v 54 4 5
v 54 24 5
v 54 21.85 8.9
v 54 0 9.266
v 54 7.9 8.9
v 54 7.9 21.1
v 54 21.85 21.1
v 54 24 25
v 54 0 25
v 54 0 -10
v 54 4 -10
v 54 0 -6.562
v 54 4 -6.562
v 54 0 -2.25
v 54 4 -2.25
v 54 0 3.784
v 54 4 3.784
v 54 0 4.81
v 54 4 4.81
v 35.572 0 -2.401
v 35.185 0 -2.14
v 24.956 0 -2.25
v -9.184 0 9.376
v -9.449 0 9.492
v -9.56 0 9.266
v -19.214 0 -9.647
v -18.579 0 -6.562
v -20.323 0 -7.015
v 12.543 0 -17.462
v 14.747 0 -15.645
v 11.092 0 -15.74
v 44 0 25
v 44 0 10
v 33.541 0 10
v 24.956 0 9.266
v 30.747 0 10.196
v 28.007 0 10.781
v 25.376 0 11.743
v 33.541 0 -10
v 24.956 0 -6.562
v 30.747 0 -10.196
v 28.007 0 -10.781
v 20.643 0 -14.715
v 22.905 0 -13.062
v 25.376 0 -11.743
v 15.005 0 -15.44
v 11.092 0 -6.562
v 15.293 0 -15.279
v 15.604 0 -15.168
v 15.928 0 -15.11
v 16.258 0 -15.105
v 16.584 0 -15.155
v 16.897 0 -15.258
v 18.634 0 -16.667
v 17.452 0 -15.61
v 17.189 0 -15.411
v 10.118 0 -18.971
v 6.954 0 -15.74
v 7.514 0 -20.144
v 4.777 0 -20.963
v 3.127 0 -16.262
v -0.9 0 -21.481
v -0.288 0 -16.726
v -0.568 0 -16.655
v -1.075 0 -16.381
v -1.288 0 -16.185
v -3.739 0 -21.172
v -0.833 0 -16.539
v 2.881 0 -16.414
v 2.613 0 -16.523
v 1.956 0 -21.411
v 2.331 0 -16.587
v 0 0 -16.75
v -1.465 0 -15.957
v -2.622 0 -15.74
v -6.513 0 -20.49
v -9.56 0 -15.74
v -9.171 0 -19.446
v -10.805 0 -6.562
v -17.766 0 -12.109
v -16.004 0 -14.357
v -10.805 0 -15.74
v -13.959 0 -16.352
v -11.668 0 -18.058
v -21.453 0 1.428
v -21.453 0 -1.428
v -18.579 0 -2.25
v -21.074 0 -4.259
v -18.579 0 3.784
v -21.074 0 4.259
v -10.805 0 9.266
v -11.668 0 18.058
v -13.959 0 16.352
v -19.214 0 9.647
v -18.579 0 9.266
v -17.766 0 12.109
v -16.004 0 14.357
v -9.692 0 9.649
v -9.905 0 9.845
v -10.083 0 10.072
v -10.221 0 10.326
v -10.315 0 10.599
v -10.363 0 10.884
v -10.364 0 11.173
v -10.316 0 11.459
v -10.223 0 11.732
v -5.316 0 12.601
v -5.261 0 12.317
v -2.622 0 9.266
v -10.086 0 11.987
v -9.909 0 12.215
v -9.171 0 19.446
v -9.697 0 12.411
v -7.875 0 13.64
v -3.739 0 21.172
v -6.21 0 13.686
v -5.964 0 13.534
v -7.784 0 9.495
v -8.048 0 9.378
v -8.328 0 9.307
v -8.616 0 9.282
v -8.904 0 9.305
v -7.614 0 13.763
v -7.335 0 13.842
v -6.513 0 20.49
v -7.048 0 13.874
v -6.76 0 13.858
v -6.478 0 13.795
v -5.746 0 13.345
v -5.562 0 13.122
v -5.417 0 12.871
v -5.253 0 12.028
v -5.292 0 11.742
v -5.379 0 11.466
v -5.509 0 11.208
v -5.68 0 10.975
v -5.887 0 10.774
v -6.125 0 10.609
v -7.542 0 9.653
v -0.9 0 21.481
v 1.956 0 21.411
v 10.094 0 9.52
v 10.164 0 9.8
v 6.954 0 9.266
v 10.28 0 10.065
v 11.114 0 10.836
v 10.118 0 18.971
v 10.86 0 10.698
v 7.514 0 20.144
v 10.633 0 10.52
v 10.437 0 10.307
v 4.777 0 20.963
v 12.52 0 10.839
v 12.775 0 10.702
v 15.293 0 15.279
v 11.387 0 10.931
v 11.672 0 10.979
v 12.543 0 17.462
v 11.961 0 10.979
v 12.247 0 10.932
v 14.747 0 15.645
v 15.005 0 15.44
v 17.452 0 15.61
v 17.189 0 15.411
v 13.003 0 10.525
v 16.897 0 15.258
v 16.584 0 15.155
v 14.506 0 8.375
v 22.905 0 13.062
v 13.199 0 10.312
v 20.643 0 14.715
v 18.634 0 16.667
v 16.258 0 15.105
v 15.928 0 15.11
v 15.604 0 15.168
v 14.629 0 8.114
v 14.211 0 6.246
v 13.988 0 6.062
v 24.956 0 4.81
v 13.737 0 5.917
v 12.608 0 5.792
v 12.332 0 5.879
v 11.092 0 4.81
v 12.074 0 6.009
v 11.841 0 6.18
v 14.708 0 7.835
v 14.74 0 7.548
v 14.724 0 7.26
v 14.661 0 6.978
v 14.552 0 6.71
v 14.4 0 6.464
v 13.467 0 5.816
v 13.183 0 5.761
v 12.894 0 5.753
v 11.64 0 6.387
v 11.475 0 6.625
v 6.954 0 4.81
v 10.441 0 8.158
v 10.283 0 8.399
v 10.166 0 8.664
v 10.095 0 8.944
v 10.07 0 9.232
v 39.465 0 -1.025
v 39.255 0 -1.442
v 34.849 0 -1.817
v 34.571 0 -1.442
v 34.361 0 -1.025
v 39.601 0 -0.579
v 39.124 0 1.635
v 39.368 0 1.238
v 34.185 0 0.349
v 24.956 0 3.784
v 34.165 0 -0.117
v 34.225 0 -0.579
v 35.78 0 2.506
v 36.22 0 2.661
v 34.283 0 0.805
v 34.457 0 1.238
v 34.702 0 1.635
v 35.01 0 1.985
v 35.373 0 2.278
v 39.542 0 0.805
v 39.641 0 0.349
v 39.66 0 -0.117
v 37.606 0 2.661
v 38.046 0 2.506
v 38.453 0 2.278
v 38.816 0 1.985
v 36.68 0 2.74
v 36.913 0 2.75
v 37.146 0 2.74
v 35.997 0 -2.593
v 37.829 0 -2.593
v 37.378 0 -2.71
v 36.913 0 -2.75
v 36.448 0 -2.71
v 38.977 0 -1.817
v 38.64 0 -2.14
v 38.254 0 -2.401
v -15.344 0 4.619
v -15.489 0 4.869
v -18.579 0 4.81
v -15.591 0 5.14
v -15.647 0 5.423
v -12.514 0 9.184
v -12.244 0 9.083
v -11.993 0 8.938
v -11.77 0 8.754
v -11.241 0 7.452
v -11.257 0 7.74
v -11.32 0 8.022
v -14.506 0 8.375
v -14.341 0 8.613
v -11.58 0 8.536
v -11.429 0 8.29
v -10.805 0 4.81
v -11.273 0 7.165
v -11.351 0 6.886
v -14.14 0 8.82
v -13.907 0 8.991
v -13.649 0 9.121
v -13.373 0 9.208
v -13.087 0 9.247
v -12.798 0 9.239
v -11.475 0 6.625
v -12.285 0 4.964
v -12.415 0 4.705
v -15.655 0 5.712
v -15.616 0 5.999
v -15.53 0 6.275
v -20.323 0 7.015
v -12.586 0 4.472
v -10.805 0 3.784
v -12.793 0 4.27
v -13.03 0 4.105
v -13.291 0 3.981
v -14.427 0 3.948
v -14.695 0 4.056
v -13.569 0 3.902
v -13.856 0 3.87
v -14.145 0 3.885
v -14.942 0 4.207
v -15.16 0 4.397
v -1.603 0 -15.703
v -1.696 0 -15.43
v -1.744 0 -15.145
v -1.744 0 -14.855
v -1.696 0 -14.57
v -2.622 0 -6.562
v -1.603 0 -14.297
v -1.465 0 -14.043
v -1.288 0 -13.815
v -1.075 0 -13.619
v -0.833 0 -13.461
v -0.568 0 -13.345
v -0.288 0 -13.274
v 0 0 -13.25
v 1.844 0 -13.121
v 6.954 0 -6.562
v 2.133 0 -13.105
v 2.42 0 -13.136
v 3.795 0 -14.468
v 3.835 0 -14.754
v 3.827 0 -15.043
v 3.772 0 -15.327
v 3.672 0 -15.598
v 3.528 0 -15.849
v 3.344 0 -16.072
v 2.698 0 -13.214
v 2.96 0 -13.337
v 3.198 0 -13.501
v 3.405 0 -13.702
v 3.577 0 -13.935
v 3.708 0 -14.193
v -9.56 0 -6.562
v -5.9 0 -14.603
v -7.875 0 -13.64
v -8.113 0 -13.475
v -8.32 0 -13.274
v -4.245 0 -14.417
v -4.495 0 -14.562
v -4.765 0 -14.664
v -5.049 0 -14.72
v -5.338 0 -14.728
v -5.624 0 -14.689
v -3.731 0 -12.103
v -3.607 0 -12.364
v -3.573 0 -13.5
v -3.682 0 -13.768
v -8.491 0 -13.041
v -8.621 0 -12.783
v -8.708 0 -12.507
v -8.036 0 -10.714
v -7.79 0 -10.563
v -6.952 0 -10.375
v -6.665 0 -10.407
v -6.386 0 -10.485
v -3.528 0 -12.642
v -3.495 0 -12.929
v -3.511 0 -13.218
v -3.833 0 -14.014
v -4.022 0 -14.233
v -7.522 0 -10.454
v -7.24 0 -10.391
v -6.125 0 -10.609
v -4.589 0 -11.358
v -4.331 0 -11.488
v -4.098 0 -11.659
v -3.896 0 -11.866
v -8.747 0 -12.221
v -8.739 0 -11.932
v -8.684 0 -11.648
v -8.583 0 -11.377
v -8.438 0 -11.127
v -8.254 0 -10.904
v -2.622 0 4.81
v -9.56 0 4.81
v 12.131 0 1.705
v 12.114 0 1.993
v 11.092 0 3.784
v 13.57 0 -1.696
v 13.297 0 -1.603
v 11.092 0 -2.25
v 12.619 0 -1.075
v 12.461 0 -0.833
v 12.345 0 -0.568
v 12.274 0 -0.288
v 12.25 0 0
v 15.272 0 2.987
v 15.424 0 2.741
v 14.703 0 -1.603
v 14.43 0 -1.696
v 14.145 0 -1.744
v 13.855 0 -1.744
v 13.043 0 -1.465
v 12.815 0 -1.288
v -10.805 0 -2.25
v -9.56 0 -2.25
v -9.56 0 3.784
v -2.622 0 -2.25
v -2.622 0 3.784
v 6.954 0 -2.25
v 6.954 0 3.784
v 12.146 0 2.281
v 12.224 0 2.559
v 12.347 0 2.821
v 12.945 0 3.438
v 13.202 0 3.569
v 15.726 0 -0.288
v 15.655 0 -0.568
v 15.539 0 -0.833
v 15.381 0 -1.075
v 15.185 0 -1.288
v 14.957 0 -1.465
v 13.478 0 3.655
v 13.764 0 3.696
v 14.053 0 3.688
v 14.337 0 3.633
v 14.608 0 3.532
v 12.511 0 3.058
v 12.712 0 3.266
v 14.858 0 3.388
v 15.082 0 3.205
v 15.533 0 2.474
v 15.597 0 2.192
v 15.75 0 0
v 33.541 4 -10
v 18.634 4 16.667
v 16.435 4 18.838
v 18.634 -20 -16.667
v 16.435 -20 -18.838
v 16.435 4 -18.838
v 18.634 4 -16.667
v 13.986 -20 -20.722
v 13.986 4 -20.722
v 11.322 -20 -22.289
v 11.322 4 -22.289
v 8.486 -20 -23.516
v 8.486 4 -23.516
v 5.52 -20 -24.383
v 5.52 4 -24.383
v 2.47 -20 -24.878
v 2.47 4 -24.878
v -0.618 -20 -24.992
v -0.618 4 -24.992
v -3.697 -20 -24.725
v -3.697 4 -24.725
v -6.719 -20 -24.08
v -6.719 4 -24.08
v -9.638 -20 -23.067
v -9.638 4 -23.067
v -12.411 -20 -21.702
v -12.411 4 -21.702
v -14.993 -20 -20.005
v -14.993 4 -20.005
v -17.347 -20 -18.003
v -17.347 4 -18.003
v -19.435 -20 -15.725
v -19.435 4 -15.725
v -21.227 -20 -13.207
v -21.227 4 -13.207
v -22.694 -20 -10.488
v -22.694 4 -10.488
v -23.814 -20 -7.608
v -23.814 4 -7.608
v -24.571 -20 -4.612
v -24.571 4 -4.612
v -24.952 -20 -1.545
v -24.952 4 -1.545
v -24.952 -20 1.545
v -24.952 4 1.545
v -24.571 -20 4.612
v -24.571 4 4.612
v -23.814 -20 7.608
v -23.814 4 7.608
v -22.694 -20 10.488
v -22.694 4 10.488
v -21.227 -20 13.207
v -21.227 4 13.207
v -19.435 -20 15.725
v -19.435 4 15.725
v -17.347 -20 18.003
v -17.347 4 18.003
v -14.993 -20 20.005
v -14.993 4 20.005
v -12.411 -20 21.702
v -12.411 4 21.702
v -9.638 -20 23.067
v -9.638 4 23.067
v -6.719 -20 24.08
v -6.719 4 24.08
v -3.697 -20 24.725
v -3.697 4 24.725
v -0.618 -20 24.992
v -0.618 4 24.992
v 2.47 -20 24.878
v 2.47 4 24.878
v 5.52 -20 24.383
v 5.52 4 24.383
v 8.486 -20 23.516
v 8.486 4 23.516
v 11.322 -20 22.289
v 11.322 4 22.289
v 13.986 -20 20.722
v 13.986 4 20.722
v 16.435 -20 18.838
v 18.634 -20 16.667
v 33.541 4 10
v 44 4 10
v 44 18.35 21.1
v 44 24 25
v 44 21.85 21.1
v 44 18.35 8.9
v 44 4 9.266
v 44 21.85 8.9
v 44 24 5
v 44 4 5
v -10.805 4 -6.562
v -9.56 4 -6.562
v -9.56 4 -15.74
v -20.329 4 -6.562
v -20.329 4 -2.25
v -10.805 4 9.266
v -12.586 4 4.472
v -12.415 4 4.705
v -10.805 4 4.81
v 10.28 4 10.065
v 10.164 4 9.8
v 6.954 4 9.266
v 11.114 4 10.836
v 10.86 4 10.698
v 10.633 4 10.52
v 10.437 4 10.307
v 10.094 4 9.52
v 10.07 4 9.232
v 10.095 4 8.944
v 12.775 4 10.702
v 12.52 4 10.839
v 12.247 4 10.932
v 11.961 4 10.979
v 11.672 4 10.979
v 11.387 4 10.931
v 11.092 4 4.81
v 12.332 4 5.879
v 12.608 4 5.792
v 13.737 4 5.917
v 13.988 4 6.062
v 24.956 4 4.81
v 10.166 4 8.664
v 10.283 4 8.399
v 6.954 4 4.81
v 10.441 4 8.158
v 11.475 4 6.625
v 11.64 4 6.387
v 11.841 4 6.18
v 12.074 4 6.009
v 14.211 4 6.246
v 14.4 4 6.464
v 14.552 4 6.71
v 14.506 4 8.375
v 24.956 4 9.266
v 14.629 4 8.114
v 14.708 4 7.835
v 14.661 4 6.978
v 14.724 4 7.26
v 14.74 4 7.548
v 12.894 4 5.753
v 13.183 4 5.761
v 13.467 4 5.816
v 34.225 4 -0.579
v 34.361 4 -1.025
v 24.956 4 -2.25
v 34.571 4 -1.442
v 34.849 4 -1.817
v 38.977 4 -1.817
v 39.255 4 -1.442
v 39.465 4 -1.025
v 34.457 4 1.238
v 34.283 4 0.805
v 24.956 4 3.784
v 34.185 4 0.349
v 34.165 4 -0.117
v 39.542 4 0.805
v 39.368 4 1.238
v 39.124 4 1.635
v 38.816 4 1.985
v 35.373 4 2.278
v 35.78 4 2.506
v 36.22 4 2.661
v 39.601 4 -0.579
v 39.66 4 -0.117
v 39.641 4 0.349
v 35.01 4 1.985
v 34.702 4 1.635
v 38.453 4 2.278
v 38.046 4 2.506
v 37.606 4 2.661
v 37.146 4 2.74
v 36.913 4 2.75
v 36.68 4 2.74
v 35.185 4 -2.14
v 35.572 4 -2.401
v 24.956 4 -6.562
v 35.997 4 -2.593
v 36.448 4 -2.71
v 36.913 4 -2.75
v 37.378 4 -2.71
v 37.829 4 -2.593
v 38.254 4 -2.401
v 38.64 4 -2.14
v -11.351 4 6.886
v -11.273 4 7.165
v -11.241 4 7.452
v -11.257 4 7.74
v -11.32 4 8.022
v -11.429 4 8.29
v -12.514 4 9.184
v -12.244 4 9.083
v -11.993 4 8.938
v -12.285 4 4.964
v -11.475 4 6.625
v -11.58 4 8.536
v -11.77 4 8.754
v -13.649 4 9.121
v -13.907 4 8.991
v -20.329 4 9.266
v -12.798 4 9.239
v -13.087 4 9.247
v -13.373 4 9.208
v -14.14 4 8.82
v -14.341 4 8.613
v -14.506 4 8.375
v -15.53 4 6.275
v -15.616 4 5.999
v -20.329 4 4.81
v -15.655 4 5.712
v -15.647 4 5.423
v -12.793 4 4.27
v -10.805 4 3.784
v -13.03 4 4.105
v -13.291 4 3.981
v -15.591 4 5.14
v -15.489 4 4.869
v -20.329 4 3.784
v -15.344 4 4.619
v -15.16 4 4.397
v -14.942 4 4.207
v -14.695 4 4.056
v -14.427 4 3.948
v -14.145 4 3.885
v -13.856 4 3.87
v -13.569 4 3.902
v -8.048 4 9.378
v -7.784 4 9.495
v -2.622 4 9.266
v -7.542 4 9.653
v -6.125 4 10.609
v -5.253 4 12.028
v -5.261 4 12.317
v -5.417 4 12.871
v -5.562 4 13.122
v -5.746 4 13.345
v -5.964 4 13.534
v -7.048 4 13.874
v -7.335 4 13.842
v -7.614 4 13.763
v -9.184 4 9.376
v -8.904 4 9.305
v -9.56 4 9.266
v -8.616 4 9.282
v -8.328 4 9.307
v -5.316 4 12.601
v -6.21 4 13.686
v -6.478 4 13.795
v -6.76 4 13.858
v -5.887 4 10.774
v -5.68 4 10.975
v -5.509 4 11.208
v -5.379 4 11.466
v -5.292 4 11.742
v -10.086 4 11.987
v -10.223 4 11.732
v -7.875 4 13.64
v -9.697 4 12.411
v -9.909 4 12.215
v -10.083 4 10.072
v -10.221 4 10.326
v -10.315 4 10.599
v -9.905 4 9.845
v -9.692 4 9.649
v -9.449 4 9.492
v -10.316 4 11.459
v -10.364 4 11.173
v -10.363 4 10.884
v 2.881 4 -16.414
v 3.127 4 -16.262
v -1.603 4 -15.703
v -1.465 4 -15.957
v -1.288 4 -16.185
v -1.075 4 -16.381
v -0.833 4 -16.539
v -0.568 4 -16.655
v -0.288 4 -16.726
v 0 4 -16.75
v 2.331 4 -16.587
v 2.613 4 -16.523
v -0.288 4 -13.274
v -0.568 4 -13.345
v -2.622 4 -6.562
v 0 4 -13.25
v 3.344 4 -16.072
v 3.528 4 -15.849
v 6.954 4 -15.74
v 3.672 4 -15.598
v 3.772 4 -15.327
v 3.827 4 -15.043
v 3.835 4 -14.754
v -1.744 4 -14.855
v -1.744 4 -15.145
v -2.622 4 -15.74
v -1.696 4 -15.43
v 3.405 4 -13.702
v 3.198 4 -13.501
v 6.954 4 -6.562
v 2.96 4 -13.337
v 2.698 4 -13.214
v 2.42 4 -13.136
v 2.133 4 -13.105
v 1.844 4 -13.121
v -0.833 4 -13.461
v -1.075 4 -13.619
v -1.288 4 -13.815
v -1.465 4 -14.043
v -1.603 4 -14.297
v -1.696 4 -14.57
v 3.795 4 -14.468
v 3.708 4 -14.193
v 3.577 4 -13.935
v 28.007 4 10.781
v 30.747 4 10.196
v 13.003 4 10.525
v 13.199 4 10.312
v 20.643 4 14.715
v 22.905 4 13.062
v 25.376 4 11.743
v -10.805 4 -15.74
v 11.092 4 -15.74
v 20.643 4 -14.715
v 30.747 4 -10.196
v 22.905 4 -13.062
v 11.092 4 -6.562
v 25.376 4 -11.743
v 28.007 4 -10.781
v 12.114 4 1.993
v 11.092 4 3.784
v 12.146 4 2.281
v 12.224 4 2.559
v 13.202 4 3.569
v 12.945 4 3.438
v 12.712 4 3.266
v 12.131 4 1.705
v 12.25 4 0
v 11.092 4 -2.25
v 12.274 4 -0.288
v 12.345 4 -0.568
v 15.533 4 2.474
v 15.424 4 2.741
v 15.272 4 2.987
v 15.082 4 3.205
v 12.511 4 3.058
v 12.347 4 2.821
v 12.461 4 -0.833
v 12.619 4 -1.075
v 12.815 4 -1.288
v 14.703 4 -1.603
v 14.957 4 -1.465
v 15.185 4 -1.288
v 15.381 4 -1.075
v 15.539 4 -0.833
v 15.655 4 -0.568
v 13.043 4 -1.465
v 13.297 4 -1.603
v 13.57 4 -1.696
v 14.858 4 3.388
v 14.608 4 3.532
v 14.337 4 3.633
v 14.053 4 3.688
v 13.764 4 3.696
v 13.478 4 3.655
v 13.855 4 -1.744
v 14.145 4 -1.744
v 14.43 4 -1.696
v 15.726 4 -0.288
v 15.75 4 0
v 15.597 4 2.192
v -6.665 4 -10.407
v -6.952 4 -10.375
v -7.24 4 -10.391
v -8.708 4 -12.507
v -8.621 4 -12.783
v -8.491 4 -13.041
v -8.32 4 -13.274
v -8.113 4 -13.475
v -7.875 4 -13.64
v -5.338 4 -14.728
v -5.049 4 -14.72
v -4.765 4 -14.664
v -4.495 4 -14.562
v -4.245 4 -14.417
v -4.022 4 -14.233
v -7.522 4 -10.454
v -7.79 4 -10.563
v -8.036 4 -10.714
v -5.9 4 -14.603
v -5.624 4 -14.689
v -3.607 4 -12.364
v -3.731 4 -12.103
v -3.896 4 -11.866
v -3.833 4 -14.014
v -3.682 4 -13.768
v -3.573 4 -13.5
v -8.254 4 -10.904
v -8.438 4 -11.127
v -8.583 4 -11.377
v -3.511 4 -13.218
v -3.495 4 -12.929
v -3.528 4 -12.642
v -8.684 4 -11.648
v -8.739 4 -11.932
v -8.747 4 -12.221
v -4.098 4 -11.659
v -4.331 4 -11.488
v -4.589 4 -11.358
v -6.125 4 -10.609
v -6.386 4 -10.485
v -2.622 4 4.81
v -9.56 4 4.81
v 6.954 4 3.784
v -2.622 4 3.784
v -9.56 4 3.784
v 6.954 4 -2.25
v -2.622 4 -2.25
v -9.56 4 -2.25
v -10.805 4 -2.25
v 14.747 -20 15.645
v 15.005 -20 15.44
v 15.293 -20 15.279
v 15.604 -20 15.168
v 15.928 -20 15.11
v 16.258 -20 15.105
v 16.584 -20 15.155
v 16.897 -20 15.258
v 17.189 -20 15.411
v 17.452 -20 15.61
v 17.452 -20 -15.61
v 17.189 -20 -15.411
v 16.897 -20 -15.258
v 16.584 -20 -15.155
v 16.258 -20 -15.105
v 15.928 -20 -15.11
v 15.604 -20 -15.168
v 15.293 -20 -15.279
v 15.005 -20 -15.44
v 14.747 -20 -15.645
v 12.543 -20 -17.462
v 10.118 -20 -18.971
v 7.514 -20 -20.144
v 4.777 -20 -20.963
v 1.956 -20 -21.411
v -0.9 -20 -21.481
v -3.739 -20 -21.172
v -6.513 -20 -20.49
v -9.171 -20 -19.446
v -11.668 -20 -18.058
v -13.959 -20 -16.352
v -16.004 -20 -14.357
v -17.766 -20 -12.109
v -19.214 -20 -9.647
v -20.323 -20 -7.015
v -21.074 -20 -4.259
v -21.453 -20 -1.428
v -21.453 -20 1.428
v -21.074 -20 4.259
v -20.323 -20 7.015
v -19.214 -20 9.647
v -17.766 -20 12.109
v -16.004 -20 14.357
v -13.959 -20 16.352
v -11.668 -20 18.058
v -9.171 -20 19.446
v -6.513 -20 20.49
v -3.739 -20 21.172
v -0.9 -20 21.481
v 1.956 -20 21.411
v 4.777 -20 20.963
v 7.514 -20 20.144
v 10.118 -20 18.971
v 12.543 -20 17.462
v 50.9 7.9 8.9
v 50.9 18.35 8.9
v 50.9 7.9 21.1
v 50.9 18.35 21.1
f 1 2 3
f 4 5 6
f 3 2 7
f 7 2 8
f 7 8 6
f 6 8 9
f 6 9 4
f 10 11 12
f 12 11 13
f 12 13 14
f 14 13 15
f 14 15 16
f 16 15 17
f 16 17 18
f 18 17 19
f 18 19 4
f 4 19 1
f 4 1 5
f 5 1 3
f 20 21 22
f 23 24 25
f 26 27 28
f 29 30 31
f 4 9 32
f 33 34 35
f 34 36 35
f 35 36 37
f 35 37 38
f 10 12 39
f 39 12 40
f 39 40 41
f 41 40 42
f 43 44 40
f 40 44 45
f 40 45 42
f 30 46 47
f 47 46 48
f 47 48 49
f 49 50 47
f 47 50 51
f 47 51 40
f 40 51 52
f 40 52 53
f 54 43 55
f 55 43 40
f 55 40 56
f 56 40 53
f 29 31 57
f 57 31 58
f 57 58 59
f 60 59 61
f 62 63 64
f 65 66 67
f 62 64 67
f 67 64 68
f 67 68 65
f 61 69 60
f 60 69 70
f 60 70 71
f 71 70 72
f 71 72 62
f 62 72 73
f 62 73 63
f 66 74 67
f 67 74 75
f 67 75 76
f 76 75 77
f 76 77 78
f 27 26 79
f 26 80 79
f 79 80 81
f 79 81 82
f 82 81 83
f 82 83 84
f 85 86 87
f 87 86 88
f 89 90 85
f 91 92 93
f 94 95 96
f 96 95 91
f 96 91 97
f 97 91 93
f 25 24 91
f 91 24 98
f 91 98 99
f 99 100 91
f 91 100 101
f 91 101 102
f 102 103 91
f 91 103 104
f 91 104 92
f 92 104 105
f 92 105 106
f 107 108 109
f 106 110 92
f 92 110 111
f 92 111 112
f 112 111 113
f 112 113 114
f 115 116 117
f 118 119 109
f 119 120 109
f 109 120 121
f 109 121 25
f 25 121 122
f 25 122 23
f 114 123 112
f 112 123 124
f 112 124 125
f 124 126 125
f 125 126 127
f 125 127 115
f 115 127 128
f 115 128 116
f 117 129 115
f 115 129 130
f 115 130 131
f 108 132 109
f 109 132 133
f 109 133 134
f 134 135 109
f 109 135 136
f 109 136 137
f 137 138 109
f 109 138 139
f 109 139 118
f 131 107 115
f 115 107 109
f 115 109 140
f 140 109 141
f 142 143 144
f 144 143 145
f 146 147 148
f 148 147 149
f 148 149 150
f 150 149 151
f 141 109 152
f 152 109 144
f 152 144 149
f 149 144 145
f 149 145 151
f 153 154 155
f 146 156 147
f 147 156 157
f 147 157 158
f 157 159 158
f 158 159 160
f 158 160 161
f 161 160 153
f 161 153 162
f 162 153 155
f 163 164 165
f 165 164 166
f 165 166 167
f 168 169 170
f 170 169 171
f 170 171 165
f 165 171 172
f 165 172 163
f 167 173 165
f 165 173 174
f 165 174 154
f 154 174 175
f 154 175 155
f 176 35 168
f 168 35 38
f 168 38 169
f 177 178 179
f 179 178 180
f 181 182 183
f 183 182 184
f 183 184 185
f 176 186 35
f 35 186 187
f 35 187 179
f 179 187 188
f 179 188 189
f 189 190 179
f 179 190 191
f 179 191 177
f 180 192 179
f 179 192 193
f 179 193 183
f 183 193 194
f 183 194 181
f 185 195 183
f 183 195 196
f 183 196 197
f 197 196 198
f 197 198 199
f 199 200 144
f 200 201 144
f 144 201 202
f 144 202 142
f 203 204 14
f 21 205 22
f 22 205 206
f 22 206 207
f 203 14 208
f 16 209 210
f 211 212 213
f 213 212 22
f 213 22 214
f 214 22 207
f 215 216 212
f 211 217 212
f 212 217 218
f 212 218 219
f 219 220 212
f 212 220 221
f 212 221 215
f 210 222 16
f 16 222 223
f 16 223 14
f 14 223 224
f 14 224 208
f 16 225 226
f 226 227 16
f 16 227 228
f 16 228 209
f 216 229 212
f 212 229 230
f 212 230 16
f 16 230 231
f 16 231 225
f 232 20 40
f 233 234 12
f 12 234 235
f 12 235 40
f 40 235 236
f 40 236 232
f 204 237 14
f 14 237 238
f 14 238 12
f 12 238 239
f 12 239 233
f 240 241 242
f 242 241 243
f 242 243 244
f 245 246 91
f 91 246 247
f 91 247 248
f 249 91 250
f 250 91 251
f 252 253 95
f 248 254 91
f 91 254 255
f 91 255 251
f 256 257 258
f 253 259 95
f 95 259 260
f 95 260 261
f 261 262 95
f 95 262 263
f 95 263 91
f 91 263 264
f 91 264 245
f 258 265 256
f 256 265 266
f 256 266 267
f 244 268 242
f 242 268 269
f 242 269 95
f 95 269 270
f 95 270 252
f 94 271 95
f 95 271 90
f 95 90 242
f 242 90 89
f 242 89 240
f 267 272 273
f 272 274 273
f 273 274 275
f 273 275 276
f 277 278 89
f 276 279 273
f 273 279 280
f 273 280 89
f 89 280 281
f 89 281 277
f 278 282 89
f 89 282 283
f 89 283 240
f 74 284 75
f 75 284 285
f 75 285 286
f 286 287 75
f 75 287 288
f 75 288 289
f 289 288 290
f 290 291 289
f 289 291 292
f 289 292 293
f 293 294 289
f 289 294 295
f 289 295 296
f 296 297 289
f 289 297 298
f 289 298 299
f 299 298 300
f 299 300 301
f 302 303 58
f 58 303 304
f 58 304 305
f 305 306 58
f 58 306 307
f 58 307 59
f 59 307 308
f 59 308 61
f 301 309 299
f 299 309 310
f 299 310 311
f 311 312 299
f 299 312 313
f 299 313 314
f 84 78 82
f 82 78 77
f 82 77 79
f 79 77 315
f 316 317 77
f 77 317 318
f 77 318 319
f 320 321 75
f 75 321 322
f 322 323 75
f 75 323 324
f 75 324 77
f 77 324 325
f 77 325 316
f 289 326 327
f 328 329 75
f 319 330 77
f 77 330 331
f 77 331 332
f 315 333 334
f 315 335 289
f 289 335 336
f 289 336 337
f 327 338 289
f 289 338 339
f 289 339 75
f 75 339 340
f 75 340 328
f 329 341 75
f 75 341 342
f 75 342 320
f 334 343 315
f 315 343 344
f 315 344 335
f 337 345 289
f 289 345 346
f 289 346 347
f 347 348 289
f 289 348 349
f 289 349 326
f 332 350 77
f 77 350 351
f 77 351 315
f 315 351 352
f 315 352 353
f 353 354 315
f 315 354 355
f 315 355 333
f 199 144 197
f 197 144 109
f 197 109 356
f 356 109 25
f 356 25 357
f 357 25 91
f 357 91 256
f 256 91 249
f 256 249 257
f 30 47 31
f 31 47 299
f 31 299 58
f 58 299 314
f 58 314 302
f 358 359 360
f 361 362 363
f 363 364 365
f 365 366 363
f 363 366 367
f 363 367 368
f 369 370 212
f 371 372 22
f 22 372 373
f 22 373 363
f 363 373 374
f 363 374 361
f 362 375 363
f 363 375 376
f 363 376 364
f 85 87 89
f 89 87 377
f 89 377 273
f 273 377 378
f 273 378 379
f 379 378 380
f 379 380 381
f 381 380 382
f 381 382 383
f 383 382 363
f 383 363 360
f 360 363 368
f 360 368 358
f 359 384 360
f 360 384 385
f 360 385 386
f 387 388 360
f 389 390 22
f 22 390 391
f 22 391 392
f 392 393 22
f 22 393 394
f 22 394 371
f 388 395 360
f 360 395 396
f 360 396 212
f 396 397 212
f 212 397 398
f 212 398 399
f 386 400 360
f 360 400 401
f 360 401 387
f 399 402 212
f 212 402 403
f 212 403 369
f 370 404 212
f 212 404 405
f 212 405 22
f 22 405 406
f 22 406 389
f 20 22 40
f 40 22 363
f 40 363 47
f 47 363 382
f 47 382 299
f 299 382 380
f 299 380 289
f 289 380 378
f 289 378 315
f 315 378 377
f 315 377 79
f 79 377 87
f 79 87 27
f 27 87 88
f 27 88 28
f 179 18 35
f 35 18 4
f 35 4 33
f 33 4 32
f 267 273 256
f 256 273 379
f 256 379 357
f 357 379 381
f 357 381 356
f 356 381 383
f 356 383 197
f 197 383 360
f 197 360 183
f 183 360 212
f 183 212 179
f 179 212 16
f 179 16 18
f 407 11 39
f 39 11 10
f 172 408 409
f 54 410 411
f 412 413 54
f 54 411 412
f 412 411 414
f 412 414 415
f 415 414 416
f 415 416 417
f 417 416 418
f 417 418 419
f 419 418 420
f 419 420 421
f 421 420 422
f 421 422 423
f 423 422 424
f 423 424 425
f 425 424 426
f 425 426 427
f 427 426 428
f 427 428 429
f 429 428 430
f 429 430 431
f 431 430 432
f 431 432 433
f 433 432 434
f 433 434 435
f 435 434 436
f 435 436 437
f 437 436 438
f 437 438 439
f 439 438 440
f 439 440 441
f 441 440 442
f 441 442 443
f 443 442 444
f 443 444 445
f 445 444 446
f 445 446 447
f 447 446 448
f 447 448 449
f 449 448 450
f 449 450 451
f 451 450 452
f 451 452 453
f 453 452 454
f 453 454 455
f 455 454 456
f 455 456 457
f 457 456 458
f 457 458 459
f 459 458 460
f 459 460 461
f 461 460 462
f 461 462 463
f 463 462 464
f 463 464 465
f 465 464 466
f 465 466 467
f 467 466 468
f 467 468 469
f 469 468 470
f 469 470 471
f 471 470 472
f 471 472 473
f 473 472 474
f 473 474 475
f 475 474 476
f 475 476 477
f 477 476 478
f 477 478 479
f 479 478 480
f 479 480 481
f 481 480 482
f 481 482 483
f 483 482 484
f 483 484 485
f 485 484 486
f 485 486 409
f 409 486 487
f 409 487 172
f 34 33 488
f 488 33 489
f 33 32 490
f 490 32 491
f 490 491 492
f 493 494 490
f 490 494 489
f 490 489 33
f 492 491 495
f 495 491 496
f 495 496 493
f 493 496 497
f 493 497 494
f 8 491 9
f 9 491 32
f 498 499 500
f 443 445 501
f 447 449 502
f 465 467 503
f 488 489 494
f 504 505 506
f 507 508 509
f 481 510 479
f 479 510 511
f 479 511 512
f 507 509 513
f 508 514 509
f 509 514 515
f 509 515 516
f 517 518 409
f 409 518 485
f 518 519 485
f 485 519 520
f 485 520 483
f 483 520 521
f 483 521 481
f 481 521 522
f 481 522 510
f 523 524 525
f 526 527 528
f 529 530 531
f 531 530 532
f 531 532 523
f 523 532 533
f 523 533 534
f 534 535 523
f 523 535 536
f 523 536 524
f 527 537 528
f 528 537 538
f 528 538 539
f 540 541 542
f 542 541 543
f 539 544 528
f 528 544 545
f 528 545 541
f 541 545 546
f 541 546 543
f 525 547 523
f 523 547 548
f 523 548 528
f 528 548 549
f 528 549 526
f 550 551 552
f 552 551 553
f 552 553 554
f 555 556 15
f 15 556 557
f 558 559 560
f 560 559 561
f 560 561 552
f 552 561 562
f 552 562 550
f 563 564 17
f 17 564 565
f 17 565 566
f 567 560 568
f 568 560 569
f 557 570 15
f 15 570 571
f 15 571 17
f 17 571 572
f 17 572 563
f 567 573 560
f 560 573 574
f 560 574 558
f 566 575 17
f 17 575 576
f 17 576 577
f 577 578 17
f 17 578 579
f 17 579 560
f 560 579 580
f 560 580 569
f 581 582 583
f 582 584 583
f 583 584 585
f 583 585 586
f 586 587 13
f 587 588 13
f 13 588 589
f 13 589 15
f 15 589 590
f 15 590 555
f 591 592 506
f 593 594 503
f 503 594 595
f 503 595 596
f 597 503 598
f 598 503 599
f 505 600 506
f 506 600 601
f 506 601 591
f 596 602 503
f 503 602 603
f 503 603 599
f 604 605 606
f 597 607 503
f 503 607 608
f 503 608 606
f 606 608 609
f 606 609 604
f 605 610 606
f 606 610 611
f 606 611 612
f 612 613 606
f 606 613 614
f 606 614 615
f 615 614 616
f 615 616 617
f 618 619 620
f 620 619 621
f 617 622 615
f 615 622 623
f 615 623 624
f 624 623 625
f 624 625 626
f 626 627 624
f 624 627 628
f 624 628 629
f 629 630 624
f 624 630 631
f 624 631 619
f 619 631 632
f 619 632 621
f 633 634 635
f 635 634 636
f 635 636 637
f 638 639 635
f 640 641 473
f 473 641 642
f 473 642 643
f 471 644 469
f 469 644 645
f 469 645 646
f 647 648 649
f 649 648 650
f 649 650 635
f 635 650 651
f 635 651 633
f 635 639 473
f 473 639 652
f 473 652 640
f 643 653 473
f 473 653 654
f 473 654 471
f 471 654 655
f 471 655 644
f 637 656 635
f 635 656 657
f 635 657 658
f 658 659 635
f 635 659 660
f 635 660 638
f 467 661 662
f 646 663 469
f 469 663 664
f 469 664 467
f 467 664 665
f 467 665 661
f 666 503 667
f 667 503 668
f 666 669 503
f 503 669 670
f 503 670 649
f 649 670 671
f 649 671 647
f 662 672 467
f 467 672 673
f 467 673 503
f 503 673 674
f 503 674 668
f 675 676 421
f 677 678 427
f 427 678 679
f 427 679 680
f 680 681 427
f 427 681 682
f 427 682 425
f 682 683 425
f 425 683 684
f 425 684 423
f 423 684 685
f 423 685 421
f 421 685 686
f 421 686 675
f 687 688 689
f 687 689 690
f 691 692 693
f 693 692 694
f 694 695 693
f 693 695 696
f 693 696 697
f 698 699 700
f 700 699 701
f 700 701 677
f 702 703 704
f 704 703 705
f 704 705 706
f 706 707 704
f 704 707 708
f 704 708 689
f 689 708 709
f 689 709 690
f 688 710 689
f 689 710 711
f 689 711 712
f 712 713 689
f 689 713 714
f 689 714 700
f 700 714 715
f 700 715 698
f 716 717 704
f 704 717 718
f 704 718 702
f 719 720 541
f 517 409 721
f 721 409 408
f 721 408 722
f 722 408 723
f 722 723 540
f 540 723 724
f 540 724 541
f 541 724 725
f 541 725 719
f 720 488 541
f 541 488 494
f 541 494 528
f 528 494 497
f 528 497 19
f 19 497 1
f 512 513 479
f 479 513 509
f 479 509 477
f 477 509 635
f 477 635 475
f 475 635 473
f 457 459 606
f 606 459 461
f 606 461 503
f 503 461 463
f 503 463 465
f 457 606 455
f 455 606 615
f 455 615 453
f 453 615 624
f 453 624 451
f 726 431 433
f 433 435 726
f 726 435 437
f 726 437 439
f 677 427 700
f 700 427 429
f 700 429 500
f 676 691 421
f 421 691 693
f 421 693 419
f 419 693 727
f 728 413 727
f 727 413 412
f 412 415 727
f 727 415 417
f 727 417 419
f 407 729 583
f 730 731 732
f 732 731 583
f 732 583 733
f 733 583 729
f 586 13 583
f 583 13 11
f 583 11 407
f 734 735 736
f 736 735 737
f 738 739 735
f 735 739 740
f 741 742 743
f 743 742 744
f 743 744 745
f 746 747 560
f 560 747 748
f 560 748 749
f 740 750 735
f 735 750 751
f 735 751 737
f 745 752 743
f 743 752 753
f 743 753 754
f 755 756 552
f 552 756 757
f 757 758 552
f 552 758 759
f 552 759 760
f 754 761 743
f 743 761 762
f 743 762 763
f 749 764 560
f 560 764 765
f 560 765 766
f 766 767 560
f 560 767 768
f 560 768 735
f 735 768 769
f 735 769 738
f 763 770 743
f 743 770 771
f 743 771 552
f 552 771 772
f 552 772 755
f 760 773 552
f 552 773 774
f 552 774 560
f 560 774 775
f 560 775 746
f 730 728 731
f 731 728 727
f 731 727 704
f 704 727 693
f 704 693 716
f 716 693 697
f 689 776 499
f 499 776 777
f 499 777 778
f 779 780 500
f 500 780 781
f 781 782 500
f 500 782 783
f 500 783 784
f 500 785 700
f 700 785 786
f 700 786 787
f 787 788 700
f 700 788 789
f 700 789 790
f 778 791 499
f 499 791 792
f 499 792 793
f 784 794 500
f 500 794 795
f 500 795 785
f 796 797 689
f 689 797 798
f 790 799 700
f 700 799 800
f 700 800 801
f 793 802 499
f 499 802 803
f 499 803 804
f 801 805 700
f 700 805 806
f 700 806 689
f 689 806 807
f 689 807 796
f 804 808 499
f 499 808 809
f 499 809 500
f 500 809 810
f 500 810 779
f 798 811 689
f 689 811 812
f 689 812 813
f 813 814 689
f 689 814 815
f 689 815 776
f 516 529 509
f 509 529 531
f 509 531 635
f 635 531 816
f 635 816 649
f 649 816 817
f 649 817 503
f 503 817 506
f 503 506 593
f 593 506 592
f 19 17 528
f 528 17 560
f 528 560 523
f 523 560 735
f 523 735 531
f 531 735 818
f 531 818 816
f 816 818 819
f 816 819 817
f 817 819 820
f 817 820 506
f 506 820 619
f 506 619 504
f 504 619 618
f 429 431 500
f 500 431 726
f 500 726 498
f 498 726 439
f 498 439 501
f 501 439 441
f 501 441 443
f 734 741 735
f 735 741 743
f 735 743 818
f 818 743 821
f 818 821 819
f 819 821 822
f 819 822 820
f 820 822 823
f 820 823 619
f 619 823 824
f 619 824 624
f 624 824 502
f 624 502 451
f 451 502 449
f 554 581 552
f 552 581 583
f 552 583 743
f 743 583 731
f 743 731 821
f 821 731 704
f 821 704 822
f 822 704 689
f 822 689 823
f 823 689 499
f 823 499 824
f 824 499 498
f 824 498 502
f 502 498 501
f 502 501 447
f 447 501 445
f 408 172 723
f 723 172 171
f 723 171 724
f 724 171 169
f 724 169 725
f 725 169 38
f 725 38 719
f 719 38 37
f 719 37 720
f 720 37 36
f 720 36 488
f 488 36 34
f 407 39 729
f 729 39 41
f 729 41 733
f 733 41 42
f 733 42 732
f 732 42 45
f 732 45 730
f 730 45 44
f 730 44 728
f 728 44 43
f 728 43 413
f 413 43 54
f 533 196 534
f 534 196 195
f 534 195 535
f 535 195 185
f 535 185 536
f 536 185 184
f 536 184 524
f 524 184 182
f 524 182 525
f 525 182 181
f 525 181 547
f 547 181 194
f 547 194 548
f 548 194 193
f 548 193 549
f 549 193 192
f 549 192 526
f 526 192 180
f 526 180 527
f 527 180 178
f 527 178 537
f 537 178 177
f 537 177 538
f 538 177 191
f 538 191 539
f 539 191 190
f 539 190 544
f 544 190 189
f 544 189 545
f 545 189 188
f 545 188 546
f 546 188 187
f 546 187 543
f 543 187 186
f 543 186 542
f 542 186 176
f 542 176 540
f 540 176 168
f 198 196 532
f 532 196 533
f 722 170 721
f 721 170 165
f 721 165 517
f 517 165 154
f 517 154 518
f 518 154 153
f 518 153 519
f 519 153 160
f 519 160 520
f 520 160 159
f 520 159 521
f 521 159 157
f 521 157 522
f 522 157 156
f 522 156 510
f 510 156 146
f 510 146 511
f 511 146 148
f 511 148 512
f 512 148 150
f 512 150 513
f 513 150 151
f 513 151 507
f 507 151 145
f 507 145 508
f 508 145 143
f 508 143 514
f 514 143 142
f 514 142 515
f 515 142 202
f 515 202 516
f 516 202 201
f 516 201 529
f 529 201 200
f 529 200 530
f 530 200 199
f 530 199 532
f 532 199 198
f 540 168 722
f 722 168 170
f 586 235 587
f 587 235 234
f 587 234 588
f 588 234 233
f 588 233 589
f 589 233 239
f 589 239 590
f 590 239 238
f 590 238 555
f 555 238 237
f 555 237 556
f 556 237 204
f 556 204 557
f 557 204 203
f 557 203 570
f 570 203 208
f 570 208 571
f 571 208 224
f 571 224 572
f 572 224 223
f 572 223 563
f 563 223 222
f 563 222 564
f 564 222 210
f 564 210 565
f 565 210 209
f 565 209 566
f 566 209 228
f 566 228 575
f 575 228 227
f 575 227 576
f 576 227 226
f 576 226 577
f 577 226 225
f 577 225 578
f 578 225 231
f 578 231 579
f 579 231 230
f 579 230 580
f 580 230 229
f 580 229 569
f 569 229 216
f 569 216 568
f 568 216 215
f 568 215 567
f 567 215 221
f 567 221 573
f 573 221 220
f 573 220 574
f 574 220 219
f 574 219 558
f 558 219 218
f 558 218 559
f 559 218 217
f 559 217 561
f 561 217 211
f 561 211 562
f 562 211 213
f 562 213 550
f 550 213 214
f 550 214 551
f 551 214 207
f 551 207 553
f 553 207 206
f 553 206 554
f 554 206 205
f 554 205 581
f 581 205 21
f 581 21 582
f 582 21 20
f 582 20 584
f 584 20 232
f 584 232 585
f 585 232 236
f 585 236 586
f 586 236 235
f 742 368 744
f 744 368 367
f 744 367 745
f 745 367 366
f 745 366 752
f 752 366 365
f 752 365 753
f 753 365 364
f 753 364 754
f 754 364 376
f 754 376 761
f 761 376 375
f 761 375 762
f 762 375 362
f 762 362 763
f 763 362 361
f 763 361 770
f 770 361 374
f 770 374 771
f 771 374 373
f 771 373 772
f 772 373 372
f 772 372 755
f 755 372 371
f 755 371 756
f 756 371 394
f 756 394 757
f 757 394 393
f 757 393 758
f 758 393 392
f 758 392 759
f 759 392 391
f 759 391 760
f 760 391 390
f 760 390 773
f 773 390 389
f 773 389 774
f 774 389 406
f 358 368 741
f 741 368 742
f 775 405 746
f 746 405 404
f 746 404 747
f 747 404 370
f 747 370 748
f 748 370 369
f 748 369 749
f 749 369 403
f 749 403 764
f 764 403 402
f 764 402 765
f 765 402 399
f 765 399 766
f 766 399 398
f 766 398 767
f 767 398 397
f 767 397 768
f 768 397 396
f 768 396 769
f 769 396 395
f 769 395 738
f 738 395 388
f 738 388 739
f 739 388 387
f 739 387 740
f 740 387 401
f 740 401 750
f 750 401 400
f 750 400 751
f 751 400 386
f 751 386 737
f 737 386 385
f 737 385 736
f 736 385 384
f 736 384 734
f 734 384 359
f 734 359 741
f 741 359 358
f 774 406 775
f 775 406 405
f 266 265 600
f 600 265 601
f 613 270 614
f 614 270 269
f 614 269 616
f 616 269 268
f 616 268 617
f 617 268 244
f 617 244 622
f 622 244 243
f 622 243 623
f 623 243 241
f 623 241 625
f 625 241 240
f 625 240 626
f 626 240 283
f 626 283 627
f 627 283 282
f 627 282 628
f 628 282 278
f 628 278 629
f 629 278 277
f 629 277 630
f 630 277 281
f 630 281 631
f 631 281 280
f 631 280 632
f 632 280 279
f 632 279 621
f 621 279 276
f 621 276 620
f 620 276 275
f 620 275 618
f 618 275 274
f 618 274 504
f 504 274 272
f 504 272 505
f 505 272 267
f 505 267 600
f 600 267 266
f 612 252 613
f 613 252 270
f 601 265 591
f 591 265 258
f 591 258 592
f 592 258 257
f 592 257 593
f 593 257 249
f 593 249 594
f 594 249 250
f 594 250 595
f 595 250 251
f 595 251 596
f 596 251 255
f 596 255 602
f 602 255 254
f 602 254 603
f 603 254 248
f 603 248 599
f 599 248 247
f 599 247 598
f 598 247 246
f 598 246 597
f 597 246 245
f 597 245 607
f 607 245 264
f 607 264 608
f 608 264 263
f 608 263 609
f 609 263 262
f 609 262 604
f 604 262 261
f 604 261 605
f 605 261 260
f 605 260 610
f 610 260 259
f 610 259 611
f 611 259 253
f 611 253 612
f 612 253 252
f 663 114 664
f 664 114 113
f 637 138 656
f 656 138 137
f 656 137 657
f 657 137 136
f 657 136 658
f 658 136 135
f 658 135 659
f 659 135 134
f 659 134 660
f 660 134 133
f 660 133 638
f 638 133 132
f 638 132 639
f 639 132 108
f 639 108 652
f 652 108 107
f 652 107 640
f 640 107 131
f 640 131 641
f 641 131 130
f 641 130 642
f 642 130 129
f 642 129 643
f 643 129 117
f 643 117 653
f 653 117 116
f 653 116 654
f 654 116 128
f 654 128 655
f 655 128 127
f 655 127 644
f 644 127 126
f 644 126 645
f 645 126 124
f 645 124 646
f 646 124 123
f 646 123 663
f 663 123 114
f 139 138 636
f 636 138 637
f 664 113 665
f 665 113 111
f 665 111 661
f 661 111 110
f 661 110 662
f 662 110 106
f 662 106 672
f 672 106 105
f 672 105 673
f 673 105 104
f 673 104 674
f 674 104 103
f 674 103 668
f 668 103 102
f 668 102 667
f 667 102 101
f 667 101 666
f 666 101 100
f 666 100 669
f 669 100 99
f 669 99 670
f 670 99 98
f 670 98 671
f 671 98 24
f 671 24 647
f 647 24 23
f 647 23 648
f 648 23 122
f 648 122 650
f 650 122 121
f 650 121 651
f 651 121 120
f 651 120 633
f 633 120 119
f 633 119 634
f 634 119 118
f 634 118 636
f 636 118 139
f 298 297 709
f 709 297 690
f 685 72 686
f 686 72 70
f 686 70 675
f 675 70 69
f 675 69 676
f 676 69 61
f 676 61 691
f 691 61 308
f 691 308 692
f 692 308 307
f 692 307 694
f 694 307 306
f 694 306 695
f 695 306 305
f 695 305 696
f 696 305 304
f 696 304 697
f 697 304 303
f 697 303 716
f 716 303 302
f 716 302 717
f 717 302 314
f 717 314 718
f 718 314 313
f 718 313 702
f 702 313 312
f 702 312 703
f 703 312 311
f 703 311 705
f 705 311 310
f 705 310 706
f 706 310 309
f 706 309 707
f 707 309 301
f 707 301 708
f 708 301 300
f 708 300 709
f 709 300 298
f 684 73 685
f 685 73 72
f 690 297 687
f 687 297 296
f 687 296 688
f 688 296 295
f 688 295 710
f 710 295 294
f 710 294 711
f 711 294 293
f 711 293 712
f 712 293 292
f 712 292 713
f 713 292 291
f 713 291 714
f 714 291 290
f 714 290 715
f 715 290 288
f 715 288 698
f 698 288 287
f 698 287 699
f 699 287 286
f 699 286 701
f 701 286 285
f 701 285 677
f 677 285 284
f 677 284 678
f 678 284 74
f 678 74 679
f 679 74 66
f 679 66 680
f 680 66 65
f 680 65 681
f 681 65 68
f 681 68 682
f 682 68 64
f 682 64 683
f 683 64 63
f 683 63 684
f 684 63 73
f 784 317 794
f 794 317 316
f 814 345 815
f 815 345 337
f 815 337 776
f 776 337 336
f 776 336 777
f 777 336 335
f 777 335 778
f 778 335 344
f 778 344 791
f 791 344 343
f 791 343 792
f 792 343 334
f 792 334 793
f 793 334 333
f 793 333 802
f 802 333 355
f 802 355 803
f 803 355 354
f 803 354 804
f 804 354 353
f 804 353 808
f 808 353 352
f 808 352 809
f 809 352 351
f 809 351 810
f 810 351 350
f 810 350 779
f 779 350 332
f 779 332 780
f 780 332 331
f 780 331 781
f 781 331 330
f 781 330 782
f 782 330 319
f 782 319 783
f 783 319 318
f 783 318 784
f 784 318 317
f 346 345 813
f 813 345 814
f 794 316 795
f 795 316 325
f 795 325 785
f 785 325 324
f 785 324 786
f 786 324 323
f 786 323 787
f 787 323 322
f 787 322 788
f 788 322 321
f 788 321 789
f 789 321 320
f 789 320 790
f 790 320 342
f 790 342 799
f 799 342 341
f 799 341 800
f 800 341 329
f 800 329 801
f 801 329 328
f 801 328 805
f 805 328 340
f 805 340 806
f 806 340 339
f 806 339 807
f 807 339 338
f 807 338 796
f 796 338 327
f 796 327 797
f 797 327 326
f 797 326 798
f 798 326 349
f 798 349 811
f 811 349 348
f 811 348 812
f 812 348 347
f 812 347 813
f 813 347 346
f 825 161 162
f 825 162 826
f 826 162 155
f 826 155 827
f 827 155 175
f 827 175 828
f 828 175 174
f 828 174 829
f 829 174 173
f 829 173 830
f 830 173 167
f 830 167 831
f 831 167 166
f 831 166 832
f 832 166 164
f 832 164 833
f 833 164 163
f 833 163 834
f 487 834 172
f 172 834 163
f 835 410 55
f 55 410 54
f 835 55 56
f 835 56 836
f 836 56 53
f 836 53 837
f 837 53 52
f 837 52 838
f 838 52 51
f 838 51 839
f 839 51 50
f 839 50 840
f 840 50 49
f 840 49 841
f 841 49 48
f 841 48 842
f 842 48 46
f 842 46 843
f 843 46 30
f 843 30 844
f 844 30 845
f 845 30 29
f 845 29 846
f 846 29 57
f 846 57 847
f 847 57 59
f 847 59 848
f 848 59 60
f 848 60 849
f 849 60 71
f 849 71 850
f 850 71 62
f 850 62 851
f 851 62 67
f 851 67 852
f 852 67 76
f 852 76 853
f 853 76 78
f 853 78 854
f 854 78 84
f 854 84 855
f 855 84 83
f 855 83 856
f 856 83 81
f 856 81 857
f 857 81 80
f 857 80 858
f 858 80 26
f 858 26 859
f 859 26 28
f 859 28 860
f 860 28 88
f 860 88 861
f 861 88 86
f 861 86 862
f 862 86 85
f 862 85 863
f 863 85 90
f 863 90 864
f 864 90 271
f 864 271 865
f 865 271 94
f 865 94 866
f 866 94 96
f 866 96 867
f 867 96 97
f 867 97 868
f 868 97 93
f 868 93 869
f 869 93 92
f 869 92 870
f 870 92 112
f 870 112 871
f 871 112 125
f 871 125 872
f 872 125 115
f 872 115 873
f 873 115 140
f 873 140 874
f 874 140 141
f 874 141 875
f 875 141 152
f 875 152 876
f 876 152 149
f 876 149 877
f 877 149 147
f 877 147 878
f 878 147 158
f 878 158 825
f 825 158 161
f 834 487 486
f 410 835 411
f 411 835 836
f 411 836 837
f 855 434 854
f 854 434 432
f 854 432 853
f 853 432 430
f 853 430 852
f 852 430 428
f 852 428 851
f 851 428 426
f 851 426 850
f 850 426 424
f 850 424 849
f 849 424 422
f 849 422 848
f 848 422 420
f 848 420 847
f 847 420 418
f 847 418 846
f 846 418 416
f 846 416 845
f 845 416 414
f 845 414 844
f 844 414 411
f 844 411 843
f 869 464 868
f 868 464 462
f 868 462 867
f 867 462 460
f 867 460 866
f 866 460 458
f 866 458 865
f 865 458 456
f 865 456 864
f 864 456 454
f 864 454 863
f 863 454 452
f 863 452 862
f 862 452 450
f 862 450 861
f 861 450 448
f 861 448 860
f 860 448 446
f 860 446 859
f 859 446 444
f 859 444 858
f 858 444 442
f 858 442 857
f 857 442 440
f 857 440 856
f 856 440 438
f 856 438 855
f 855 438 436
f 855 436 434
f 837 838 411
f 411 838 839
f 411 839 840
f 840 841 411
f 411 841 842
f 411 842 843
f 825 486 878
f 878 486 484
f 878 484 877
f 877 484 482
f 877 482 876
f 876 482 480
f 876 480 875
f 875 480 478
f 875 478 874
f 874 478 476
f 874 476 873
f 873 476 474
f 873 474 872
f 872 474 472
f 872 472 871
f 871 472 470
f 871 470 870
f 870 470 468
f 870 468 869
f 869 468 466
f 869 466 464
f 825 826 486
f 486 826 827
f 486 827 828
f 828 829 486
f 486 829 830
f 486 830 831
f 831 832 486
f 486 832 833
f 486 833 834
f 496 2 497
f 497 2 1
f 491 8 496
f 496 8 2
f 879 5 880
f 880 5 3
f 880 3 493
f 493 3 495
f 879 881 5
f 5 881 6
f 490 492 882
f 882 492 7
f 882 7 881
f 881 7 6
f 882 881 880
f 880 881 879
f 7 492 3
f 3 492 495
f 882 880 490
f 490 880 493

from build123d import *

# Parameters (mm, degrees)
BOSS_EXTRUDE1_DEPTH = 4
FILLET1_R           = 20
SKETCH1_R           = 2.75
CUT_EXTRUDE3_DEPTH  = 131.855321132
BOSS_EXTRUDE2_START = 20
BOSS_EXTRUDE2_DEPTH = 20
SKETCH7_W           = 10
SKETCH7_H           = 20
BOSS_EXTRUDE3_DEPTH = 20
SKETCH8_W           = 12.2
SKETCH8_H           = 12.2
CUT_EXTRUDE4_DEPTH  = 3.1
CUT_EXTRUDE5_REACH  = 88.267
SKETCH8_3_W         = 12.2
SKETCH8_3_H         = 3.5


with BuildPart() as part:
    # Sketch3 → Boss-Extrude1 (new body)
    with BuildSketch(Plane(origin=(0, 0, 0), x_dir=(1, 0, 0), z_dir=(0, 1, 0))):
        with BuildLine():
            Line((22.912878475, 10), (44, 10))
            Line((44, 10), (54, 10))
            Line((54, 10), (54, -25))
            Line((54, -25), (44, -25))
            Line((44, -25), (44, -10))
            Line((44, -10), (22.912878475, -10))
            ThreePointArc((22.912878475, -10), (-25, 0), (22.912878475, 10))
        make_face()
    extrude(amount=BOSS_EXTRUDE1_DEPTH)

    # Fillet1
    fillet1_edges = [part.edges().sort_by_distance(p)[0] for p in [
        (22.912878475, 2, 10),
        (22.912878475, 2, -10),
    ]]
    fillet(fillet1_edges, radius=FILLET1_R)

    # Sketch1 → Cut-Extrude3 (cut, through all)
    with BuildSketch(Plane(origin=(103.38268991, 0, 0), x_dir=(1, 0, 0), z_dir=(0, 1, 0))):
        with Locations((-66.469811435, 0)):
            Circle(SKETCH1_R)
        with BuildLine():
            ThreePointArc((-91.90785331, -6.625), (-92.397942073, -7.409305971), (-92.941547424, -8.157514548))
            ThreePointArc((-92.941547424, -8.157514548), (-92.639936187, -10.613940949), (-90.183509787, -10.312329712))
            ThreePointArc((-90.183509787, -10.312329712), (-89.496310569, -9.366481133), (-88.876764396, -8.375))
            ThreePointArc((-88.876764396, -8.375), (-89.517308853, -5.984455543), (-91.90785331, -6.625))
        make_face()
        with BuildLine():
            ThreePointArc((-91.13268991, 0), (-91.162530294, -0.854516803), (-91.251906068, -1.704870487))
            ThreePointArc((-91.251906068, -1.704870487), (-89.762489874, -3.681392534), (-87.785967827, -2.19197634))
            ThreePointArc((-87.785967827, -2.19197634), (-87.671056118, -1.098664461), (-87.63268991, 0))
            ThreePointArc((-87.63268991, 0), (-89.38268991, 1.75), (-91.13268991, 0))
        make_face()
        with BuildLine():
            ThreePointArc((-114.85752651, -6.625), (-115.498070966, -9.015544457), (-117.888615423, -8.375))
            ThreePointArc((-117.888615423, -8.375), (-118.437490185, -7.342716709), (-118.913019474, -6.27466044))
            ThreePointArc((-118.913019474, -6.27466044), (-117.946009267, -3.996527156), (-115.667875983, -4.963537363))
            ThreePointArc((-115.667875983, -4.963537363), (-115.291711023, -5.808417695), (-114.85752651, -6.625))
        make_face()
        with BuildLine():
            ThreePointArc((-111.25768991, -13.63990011), (-108.867145453, -12.999355653), (-109.50768991, -10.608811196))
            ThreePointArc((-109.50768991, -10.608811196), (-110.232802977, -10.155710264), (-110.924542982, -9.653131732))
            ThreePointArc((-110.924542982, -9.653131732), (-113.380969383, -9.954742969), (-113.079358146, -12.411169369))
            ThreePointArc((-113.079358146, -12.411169369), (-112.189978139, -13.057341768), (-111.25768991, -13.63990011))
        make_face()
        with BuildLine():
            ThreePointArc((-103.38268991, 13.25), (-105.13268991, 15), (-103.38268991, 16.75))
            ThreePointArc((-103.38268991, 16.75), (-102.214268974, 16.709197842), (-101.051540469, 16.586990151))
            ThreePointArc((-101.051540469, 16.586990151), (-99.562124275, 14.610468104), (-101.538646322, 13.121051911))
            ThreePointArc((-101.538646322, 13.121051911), (-102.458416633, 13.217723666), (-103.38268991, 13.25))
        make_face()
        with BuildLine():
            ThreePointArc((-111.25768991, 13.63990011), (-111.898234366, 11.249355653), (-109.50768991, 10.608811196))
            ThreePointArc((-109.50768991, 10.608811196), (-108.752736458, 11.010227067), (-107.971620679, 11.358002218))
            ThreePointArc((-107.971620679, 11.358002218), (-107.004610472, 13.636135502), (-109.282743756, 14.603145709))
            ThreePointArc((-109.282743756, 14.603145709), (-110.287035472, 14.156006229), (-111.25768991, 13.63990011))
        make_face()
    extrude(amount=CUT_EXTRUDE3_DEPTH, mode=Mode.SUBTRACT)

    # Sketch4 → Boss-Extrude2 (add)
    with BuildSketch(Plane.XZ.offset(BOSS_EXTRUDE2_START)):
        with BuildLine():
            Line((18.633899812, 16.666666667), (17.452315988, 15.609825965))
            ThreePointArc((17.452315988, 15.609825965), (16.092851842, 15.100708662), (14.747154343, 15.645173018))
            ThreePointArc((14.747154343, 15.645173018), (-21.5, 0), (14.747154343, -15.645173018))
            ThreePointArc((14.747154343, -15.645173018), (16.092851842, -15.100708662), (17.452315988, -15.609825965))
            Line((17.452315988, -15.609825965), (18.633899812, -16.666666667))
            ThreePointArc((18.633899812, -16.666666667), (-25, 0), (18.633899812, 16.666666667))
        make_face()
    extrude(amount=-BOSS_EXTRUDE2_DEPTH)

    # Sketch7 → Boss-Extrude3 (add)
    with BuildSketch(Plane(origin=(0, 4, 0), x_dir=(1, 0, 0), z_dir=(0, 1, 0))):
        with Locations((49, -15)):
            Rectangle(SKETCH7_W, SKETCH7_H)
    extrude(amount=BOSS_EXTRUDE3_DEPTH)

    # Sketch8 → Cut-Extrude4 (cut)
    with BuildSketch(Plane(origin=(54, 0, 0), x_dir=(0, 0, -1), z_dir=(1, 0, 0))):
        with Locations((-15, 14)):
            Rectangle(SKETCH8_W, SKETCH8_H)
    extrude(amount=-CUT_EXTRUDE4_DEPTH, mode=Mode.SUBTRACT)

    # Sketch8<3> → Cut-Extrude5 (cut, up to next)
    with BuildSketch(Plane(origin=(54, 0, 0), x_dir=(0, 0, -1), z_dir=(1, 0, 0)), mode=Mode.PRIVATE) as cut_extrude5_sk1:
        with Locations((-15, 20.1)):
            Rectangle(SKETCH8_3_W, SKETCH8_3_H)
    cut_extrude5_tool1 = extrude(cut_extrude5_sk1.sketch, amount=-CUT_EXTRUDE5_REACH, mode=Mode.PRIVATE) & part.part
    add(cut_extrude5_tool1.solids().sort_by_distance((54, 20.1, 15))[0], mode=Mode.SUBTRACT)


solid = part.part
